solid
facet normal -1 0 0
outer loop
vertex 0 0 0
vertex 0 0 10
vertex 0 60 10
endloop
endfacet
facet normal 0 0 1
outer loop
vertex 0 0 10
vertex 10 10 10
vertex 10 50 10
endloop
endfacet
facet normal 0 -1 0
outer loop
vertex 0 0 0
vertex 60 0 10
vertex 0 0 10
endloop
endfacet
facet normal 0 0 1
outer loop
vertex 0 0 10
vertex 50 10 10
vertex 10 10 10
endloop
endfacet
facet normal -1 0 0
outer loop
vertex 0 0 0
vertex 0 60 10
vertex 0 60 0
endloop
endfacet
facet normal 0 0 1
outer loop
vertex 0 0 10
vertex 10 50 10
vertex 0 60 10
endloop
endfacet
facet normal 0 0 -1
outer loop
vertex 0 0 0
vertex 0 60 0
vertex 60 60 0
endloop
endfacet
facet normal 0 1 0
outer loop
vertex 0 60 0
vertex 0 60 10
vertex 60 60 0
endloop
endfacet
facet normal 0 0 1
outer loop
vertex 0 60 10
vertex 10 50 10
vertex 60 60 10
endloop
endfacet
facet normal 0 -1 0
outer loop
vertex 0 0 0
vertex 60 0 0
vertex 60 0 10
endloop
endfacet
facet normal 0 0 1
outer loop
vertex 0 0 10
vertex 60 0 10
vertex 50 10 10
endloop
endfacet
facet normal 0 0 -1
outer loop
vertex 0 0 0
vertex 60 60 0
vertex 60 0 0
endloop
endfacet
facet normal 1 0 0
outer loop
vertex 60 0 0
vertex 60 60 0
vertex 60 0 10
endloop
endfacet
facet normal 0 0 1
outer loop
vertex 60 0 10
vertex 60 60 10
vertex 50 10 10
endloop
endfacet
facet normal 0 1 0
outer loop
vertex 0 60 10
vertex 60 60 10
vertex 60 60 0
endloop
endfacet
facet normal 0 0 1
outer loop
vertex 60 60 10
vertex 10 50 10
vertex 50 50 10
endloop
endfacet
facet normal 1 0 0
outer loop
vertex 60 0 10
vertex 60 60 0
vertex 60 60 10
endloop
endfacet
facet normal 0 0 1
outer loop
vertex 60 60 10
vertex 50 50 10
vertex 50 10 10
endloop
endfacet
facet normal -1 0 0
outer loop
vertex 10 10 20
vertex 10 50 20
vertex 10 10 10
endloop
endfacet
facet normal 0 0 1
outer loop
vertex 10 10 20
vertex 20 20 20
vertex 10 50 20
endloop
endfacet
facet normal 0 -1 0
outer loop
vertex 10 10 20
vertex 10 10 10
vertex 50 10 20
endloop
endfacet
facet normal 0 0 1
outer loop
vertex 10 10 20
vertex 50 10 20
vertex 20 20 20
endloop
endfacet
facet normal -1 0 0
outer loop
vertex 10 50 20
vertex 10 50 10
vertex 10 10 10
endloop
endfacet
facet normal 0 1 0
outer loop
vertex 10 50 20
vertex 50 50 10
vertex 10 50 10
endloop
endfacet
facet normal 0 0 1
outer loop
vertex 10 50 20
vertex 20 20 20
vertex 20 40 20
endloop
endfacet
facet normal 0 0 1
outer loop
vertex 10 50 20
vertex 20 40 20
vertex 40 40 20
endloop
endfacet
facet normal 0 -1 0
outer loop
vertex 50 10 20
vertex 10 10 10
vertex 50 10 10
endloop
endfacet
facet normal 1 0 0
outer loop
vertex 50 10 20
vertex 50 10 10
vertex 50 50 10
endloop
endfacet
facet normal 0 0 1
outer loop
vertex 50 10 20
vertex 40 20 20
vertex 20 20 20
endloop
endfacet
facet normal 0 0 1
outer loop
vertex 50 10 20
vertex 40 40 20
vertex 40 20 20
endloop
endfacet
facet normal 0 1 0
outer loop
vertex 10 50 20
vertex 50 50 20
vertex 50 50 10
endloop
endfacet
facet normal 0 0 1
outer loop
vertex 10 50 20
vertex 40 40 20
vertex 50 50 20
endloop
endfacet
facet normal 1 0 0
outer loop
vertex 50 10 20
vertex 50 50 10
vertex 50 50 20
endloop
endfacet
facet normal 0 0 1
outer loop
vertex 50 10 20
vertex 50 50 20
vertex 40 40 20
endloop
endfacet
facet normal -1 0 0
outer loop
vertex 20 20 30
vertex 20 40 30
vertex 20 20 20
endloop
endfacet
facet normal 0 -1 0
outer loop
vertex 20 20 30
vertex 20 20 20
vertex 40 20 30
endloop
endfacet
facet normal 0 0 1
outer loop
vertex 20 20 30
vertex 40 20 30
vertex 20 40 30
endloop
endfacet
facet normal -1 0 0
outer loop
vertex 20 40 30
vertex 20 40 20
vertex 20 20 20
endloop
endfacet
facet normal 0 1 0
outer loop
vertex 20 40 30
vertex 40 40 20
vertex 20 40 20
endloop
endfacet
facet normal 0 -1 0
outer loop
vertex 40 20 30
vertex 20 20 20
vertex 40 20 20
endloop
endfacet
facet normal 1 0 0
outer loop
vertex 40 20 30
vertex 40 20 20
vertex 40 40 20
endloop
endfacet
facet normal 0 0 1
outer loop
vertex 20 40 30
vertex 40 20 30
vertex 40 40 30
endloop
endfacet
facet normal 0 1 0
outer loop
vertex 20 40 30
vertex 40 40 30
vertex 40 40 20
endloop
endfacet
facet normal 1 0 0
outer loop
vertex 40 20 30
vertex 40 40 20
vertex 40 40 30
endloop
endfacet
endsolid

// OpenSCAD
translate([0, 0, 0]) cube([60, 60, 10]);
translate([10, 10, 10]) cube([40, 40, 10]);
translate([20, 20, 20]) cube([20, 20, 10]);
